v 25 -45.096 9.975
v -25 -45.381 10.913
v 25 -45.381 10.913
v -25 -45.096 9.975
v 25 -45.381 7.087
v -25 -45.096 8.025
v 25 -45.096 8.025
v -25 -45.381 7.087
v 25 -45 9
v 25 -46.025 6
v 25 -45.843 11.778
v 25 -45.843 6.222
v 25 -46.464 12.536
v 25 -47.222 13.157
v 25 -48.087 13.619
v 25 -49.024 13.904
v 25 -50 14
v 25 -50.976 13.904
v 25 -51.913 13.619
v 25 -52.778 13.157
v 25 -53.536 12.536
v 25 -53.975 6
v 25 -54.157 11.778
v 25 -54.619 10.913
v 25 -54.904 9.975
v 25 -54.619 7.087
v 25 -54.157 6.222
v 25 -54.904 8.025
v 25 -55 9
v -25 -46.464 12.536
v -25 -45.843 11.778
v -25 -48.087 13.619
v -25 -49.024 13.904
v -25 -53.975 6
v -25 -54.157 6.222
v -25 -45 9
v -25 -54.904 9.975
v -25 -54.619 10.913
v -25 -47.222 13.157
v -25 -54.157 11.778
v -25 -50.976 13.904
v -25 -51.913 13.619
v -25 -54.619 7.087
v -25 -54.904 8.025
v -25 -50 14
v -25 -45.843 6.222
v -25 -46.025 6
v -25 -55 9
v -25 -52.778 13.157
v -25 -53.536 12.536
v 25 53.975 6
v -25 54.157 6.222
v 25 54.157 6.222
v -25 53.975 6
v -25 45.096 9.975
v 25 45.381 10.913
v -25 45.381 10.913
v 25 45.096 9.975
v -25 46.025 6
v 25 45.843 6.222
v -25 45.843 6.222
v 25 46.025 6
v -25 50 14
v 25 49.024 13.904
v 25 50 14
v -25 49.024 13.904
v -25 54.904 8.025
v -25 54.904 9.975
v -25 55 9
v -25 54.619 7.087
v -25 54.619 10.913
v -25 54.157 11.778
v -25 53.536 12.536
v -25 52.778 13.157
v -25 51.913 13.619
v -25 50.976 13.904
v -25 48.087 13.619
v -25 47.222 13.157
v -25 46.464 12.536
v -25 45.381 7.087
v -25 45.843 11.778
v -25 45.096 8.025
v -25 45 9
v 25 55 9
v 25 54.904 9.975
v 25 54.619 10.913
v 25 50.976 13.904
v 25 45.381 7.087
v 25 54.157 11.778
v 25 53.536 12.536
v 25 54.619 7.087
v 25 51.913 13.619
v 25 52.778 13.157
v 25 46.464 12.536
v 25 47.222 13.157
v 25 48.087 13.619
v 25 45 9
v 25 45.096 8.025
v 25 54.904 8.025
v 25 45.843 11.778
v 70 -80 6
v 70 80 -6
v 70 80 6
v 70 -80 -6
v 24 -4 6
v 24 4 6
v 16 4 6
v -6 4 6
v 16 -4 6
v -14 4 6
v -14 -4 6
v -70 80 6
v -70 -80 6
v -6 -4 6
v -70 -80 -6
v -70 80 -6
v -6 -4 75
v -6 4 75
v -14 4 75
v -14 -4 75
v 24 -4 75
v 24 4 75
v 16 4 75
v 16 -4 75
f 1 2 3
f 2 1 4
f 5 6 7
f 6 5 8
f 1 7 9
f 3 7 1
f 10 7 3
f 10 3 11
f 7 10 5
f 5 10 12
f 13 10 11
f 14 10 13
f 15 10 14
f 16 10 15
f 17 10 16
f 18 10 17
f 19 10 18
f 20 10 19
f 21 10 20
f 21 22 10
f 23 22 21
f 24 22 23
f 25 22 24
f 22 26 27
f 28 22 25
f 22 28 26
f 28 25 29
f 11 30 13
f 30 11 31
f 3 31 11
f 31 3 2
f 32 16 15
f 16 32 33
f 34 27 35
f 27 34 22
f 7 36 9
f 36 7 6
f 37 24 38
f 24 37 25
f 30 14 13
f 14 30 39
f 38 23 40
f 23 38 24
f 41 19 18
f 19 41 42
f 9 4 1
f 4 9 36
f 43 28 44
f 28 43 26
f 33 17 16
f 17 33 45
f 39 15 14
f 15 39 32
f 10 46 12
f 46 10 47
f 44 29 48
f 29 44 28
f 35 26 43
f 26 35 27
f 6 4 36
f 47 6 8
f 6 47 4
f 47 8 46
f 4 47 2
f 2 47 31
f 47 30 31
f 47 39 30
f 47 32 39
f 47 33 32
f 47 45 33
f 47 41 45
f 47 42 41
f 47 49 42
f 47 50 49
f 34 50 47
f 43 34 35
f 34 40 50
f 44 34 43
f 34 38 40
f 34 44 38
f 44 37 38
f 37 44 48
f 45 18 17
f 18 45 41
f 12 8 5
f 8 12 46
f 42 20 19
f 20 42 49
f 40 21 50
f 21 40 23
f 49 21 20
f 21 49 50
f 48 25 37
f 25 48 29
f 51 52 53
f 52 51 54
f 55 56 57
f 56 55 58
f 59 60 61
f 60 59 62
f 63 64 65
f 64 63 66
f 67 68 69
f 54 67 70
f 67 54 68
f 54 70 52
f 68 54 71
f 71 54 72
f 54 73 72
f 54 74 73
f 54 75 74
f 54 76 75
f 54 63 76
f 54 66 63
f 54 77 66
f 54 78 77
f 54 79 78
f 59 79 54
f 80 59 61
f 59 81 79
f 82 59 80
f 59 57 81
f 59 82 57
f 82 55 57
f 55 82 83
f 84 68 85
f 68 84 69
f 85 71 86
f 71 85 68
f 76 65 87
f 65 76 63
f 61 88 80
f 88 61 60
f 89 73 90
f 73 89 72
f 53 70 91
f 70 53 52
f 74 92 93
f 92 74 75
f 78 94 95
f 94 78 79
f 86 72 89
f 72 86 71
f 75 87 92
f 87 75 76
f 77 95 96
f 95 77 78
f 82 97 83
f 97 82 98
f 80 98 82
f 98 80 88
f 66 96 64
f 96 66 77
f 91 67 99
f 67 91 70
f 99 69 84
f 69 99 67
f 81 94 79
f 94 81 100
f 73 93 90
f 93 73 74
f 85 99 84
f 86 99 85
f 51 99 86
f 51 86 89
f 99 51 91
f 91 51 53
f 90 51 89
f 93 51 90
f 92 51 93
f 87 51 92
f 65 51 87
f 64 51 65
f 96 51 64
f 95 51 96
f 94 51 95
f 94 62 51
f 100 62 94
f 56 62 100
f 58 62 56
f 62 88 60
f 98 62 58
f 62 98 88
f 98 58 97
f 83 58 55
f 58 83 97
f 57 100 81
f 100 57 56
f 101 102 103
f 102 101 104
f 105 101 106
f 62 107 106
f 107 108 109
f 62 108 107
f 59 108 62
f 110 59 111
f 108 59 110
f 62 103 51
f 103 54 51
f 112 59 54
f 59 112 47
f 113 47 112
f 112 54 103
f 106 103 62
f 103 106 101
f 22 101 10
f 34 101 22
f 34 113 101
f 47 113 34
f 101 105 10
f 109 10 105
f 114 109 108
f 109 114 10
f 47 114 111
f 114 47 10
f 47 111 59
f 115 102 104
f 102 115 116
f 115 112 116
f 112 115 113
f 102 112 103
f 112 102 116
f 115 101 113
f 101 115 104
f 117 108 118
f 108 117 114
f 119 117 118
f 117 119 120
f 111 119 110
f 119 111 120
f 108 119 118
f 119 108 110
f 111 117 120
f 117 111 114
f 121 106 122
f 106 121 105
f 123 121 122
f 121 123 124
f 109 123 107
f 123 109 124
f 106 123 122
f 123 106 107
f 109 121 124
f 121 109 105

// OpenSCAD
// ISM-FJ-TOOL-030 — Empennage assembly jig (study mm). Issue #106.
// Manifold solid: HT cradles seat into base with overlap.

ht_span = 100;
ht_chord = 50;
vt_h = 70;
vt_chord = 60;
base_t = 12;
cradle_d = 10;
overlap = 2;

module empennage_jig() {
    union() {
        cube([vt_chord + 80, ht_span + 60, base_t], center = true);
        // VT spar posts — rooted in base
        translate([-10, 0, base_t / 2 + vt_h / 2 - overlap])
            cube([8, 8, vt_h + overlap], center = true);
        translate([20, 0, base_t / 2 + vt_h / 2 - overlap])
            cube([8, 8, vt_h + overlap], center = true);
        // HT hinge cradles — axis at base top + radius - overlap
        cradle_z = base_t / 2 + cradle_d / 2 - overlap;
        for (s = [-1, 1])
            translate([0, s * ht_span / 2, cradle_z])
                rotate([0, 90, 0])
                    cylinder(h = ht_chord, d = cradle_d, center = true, $fn = 32);
    }
}

empennage_jig();
